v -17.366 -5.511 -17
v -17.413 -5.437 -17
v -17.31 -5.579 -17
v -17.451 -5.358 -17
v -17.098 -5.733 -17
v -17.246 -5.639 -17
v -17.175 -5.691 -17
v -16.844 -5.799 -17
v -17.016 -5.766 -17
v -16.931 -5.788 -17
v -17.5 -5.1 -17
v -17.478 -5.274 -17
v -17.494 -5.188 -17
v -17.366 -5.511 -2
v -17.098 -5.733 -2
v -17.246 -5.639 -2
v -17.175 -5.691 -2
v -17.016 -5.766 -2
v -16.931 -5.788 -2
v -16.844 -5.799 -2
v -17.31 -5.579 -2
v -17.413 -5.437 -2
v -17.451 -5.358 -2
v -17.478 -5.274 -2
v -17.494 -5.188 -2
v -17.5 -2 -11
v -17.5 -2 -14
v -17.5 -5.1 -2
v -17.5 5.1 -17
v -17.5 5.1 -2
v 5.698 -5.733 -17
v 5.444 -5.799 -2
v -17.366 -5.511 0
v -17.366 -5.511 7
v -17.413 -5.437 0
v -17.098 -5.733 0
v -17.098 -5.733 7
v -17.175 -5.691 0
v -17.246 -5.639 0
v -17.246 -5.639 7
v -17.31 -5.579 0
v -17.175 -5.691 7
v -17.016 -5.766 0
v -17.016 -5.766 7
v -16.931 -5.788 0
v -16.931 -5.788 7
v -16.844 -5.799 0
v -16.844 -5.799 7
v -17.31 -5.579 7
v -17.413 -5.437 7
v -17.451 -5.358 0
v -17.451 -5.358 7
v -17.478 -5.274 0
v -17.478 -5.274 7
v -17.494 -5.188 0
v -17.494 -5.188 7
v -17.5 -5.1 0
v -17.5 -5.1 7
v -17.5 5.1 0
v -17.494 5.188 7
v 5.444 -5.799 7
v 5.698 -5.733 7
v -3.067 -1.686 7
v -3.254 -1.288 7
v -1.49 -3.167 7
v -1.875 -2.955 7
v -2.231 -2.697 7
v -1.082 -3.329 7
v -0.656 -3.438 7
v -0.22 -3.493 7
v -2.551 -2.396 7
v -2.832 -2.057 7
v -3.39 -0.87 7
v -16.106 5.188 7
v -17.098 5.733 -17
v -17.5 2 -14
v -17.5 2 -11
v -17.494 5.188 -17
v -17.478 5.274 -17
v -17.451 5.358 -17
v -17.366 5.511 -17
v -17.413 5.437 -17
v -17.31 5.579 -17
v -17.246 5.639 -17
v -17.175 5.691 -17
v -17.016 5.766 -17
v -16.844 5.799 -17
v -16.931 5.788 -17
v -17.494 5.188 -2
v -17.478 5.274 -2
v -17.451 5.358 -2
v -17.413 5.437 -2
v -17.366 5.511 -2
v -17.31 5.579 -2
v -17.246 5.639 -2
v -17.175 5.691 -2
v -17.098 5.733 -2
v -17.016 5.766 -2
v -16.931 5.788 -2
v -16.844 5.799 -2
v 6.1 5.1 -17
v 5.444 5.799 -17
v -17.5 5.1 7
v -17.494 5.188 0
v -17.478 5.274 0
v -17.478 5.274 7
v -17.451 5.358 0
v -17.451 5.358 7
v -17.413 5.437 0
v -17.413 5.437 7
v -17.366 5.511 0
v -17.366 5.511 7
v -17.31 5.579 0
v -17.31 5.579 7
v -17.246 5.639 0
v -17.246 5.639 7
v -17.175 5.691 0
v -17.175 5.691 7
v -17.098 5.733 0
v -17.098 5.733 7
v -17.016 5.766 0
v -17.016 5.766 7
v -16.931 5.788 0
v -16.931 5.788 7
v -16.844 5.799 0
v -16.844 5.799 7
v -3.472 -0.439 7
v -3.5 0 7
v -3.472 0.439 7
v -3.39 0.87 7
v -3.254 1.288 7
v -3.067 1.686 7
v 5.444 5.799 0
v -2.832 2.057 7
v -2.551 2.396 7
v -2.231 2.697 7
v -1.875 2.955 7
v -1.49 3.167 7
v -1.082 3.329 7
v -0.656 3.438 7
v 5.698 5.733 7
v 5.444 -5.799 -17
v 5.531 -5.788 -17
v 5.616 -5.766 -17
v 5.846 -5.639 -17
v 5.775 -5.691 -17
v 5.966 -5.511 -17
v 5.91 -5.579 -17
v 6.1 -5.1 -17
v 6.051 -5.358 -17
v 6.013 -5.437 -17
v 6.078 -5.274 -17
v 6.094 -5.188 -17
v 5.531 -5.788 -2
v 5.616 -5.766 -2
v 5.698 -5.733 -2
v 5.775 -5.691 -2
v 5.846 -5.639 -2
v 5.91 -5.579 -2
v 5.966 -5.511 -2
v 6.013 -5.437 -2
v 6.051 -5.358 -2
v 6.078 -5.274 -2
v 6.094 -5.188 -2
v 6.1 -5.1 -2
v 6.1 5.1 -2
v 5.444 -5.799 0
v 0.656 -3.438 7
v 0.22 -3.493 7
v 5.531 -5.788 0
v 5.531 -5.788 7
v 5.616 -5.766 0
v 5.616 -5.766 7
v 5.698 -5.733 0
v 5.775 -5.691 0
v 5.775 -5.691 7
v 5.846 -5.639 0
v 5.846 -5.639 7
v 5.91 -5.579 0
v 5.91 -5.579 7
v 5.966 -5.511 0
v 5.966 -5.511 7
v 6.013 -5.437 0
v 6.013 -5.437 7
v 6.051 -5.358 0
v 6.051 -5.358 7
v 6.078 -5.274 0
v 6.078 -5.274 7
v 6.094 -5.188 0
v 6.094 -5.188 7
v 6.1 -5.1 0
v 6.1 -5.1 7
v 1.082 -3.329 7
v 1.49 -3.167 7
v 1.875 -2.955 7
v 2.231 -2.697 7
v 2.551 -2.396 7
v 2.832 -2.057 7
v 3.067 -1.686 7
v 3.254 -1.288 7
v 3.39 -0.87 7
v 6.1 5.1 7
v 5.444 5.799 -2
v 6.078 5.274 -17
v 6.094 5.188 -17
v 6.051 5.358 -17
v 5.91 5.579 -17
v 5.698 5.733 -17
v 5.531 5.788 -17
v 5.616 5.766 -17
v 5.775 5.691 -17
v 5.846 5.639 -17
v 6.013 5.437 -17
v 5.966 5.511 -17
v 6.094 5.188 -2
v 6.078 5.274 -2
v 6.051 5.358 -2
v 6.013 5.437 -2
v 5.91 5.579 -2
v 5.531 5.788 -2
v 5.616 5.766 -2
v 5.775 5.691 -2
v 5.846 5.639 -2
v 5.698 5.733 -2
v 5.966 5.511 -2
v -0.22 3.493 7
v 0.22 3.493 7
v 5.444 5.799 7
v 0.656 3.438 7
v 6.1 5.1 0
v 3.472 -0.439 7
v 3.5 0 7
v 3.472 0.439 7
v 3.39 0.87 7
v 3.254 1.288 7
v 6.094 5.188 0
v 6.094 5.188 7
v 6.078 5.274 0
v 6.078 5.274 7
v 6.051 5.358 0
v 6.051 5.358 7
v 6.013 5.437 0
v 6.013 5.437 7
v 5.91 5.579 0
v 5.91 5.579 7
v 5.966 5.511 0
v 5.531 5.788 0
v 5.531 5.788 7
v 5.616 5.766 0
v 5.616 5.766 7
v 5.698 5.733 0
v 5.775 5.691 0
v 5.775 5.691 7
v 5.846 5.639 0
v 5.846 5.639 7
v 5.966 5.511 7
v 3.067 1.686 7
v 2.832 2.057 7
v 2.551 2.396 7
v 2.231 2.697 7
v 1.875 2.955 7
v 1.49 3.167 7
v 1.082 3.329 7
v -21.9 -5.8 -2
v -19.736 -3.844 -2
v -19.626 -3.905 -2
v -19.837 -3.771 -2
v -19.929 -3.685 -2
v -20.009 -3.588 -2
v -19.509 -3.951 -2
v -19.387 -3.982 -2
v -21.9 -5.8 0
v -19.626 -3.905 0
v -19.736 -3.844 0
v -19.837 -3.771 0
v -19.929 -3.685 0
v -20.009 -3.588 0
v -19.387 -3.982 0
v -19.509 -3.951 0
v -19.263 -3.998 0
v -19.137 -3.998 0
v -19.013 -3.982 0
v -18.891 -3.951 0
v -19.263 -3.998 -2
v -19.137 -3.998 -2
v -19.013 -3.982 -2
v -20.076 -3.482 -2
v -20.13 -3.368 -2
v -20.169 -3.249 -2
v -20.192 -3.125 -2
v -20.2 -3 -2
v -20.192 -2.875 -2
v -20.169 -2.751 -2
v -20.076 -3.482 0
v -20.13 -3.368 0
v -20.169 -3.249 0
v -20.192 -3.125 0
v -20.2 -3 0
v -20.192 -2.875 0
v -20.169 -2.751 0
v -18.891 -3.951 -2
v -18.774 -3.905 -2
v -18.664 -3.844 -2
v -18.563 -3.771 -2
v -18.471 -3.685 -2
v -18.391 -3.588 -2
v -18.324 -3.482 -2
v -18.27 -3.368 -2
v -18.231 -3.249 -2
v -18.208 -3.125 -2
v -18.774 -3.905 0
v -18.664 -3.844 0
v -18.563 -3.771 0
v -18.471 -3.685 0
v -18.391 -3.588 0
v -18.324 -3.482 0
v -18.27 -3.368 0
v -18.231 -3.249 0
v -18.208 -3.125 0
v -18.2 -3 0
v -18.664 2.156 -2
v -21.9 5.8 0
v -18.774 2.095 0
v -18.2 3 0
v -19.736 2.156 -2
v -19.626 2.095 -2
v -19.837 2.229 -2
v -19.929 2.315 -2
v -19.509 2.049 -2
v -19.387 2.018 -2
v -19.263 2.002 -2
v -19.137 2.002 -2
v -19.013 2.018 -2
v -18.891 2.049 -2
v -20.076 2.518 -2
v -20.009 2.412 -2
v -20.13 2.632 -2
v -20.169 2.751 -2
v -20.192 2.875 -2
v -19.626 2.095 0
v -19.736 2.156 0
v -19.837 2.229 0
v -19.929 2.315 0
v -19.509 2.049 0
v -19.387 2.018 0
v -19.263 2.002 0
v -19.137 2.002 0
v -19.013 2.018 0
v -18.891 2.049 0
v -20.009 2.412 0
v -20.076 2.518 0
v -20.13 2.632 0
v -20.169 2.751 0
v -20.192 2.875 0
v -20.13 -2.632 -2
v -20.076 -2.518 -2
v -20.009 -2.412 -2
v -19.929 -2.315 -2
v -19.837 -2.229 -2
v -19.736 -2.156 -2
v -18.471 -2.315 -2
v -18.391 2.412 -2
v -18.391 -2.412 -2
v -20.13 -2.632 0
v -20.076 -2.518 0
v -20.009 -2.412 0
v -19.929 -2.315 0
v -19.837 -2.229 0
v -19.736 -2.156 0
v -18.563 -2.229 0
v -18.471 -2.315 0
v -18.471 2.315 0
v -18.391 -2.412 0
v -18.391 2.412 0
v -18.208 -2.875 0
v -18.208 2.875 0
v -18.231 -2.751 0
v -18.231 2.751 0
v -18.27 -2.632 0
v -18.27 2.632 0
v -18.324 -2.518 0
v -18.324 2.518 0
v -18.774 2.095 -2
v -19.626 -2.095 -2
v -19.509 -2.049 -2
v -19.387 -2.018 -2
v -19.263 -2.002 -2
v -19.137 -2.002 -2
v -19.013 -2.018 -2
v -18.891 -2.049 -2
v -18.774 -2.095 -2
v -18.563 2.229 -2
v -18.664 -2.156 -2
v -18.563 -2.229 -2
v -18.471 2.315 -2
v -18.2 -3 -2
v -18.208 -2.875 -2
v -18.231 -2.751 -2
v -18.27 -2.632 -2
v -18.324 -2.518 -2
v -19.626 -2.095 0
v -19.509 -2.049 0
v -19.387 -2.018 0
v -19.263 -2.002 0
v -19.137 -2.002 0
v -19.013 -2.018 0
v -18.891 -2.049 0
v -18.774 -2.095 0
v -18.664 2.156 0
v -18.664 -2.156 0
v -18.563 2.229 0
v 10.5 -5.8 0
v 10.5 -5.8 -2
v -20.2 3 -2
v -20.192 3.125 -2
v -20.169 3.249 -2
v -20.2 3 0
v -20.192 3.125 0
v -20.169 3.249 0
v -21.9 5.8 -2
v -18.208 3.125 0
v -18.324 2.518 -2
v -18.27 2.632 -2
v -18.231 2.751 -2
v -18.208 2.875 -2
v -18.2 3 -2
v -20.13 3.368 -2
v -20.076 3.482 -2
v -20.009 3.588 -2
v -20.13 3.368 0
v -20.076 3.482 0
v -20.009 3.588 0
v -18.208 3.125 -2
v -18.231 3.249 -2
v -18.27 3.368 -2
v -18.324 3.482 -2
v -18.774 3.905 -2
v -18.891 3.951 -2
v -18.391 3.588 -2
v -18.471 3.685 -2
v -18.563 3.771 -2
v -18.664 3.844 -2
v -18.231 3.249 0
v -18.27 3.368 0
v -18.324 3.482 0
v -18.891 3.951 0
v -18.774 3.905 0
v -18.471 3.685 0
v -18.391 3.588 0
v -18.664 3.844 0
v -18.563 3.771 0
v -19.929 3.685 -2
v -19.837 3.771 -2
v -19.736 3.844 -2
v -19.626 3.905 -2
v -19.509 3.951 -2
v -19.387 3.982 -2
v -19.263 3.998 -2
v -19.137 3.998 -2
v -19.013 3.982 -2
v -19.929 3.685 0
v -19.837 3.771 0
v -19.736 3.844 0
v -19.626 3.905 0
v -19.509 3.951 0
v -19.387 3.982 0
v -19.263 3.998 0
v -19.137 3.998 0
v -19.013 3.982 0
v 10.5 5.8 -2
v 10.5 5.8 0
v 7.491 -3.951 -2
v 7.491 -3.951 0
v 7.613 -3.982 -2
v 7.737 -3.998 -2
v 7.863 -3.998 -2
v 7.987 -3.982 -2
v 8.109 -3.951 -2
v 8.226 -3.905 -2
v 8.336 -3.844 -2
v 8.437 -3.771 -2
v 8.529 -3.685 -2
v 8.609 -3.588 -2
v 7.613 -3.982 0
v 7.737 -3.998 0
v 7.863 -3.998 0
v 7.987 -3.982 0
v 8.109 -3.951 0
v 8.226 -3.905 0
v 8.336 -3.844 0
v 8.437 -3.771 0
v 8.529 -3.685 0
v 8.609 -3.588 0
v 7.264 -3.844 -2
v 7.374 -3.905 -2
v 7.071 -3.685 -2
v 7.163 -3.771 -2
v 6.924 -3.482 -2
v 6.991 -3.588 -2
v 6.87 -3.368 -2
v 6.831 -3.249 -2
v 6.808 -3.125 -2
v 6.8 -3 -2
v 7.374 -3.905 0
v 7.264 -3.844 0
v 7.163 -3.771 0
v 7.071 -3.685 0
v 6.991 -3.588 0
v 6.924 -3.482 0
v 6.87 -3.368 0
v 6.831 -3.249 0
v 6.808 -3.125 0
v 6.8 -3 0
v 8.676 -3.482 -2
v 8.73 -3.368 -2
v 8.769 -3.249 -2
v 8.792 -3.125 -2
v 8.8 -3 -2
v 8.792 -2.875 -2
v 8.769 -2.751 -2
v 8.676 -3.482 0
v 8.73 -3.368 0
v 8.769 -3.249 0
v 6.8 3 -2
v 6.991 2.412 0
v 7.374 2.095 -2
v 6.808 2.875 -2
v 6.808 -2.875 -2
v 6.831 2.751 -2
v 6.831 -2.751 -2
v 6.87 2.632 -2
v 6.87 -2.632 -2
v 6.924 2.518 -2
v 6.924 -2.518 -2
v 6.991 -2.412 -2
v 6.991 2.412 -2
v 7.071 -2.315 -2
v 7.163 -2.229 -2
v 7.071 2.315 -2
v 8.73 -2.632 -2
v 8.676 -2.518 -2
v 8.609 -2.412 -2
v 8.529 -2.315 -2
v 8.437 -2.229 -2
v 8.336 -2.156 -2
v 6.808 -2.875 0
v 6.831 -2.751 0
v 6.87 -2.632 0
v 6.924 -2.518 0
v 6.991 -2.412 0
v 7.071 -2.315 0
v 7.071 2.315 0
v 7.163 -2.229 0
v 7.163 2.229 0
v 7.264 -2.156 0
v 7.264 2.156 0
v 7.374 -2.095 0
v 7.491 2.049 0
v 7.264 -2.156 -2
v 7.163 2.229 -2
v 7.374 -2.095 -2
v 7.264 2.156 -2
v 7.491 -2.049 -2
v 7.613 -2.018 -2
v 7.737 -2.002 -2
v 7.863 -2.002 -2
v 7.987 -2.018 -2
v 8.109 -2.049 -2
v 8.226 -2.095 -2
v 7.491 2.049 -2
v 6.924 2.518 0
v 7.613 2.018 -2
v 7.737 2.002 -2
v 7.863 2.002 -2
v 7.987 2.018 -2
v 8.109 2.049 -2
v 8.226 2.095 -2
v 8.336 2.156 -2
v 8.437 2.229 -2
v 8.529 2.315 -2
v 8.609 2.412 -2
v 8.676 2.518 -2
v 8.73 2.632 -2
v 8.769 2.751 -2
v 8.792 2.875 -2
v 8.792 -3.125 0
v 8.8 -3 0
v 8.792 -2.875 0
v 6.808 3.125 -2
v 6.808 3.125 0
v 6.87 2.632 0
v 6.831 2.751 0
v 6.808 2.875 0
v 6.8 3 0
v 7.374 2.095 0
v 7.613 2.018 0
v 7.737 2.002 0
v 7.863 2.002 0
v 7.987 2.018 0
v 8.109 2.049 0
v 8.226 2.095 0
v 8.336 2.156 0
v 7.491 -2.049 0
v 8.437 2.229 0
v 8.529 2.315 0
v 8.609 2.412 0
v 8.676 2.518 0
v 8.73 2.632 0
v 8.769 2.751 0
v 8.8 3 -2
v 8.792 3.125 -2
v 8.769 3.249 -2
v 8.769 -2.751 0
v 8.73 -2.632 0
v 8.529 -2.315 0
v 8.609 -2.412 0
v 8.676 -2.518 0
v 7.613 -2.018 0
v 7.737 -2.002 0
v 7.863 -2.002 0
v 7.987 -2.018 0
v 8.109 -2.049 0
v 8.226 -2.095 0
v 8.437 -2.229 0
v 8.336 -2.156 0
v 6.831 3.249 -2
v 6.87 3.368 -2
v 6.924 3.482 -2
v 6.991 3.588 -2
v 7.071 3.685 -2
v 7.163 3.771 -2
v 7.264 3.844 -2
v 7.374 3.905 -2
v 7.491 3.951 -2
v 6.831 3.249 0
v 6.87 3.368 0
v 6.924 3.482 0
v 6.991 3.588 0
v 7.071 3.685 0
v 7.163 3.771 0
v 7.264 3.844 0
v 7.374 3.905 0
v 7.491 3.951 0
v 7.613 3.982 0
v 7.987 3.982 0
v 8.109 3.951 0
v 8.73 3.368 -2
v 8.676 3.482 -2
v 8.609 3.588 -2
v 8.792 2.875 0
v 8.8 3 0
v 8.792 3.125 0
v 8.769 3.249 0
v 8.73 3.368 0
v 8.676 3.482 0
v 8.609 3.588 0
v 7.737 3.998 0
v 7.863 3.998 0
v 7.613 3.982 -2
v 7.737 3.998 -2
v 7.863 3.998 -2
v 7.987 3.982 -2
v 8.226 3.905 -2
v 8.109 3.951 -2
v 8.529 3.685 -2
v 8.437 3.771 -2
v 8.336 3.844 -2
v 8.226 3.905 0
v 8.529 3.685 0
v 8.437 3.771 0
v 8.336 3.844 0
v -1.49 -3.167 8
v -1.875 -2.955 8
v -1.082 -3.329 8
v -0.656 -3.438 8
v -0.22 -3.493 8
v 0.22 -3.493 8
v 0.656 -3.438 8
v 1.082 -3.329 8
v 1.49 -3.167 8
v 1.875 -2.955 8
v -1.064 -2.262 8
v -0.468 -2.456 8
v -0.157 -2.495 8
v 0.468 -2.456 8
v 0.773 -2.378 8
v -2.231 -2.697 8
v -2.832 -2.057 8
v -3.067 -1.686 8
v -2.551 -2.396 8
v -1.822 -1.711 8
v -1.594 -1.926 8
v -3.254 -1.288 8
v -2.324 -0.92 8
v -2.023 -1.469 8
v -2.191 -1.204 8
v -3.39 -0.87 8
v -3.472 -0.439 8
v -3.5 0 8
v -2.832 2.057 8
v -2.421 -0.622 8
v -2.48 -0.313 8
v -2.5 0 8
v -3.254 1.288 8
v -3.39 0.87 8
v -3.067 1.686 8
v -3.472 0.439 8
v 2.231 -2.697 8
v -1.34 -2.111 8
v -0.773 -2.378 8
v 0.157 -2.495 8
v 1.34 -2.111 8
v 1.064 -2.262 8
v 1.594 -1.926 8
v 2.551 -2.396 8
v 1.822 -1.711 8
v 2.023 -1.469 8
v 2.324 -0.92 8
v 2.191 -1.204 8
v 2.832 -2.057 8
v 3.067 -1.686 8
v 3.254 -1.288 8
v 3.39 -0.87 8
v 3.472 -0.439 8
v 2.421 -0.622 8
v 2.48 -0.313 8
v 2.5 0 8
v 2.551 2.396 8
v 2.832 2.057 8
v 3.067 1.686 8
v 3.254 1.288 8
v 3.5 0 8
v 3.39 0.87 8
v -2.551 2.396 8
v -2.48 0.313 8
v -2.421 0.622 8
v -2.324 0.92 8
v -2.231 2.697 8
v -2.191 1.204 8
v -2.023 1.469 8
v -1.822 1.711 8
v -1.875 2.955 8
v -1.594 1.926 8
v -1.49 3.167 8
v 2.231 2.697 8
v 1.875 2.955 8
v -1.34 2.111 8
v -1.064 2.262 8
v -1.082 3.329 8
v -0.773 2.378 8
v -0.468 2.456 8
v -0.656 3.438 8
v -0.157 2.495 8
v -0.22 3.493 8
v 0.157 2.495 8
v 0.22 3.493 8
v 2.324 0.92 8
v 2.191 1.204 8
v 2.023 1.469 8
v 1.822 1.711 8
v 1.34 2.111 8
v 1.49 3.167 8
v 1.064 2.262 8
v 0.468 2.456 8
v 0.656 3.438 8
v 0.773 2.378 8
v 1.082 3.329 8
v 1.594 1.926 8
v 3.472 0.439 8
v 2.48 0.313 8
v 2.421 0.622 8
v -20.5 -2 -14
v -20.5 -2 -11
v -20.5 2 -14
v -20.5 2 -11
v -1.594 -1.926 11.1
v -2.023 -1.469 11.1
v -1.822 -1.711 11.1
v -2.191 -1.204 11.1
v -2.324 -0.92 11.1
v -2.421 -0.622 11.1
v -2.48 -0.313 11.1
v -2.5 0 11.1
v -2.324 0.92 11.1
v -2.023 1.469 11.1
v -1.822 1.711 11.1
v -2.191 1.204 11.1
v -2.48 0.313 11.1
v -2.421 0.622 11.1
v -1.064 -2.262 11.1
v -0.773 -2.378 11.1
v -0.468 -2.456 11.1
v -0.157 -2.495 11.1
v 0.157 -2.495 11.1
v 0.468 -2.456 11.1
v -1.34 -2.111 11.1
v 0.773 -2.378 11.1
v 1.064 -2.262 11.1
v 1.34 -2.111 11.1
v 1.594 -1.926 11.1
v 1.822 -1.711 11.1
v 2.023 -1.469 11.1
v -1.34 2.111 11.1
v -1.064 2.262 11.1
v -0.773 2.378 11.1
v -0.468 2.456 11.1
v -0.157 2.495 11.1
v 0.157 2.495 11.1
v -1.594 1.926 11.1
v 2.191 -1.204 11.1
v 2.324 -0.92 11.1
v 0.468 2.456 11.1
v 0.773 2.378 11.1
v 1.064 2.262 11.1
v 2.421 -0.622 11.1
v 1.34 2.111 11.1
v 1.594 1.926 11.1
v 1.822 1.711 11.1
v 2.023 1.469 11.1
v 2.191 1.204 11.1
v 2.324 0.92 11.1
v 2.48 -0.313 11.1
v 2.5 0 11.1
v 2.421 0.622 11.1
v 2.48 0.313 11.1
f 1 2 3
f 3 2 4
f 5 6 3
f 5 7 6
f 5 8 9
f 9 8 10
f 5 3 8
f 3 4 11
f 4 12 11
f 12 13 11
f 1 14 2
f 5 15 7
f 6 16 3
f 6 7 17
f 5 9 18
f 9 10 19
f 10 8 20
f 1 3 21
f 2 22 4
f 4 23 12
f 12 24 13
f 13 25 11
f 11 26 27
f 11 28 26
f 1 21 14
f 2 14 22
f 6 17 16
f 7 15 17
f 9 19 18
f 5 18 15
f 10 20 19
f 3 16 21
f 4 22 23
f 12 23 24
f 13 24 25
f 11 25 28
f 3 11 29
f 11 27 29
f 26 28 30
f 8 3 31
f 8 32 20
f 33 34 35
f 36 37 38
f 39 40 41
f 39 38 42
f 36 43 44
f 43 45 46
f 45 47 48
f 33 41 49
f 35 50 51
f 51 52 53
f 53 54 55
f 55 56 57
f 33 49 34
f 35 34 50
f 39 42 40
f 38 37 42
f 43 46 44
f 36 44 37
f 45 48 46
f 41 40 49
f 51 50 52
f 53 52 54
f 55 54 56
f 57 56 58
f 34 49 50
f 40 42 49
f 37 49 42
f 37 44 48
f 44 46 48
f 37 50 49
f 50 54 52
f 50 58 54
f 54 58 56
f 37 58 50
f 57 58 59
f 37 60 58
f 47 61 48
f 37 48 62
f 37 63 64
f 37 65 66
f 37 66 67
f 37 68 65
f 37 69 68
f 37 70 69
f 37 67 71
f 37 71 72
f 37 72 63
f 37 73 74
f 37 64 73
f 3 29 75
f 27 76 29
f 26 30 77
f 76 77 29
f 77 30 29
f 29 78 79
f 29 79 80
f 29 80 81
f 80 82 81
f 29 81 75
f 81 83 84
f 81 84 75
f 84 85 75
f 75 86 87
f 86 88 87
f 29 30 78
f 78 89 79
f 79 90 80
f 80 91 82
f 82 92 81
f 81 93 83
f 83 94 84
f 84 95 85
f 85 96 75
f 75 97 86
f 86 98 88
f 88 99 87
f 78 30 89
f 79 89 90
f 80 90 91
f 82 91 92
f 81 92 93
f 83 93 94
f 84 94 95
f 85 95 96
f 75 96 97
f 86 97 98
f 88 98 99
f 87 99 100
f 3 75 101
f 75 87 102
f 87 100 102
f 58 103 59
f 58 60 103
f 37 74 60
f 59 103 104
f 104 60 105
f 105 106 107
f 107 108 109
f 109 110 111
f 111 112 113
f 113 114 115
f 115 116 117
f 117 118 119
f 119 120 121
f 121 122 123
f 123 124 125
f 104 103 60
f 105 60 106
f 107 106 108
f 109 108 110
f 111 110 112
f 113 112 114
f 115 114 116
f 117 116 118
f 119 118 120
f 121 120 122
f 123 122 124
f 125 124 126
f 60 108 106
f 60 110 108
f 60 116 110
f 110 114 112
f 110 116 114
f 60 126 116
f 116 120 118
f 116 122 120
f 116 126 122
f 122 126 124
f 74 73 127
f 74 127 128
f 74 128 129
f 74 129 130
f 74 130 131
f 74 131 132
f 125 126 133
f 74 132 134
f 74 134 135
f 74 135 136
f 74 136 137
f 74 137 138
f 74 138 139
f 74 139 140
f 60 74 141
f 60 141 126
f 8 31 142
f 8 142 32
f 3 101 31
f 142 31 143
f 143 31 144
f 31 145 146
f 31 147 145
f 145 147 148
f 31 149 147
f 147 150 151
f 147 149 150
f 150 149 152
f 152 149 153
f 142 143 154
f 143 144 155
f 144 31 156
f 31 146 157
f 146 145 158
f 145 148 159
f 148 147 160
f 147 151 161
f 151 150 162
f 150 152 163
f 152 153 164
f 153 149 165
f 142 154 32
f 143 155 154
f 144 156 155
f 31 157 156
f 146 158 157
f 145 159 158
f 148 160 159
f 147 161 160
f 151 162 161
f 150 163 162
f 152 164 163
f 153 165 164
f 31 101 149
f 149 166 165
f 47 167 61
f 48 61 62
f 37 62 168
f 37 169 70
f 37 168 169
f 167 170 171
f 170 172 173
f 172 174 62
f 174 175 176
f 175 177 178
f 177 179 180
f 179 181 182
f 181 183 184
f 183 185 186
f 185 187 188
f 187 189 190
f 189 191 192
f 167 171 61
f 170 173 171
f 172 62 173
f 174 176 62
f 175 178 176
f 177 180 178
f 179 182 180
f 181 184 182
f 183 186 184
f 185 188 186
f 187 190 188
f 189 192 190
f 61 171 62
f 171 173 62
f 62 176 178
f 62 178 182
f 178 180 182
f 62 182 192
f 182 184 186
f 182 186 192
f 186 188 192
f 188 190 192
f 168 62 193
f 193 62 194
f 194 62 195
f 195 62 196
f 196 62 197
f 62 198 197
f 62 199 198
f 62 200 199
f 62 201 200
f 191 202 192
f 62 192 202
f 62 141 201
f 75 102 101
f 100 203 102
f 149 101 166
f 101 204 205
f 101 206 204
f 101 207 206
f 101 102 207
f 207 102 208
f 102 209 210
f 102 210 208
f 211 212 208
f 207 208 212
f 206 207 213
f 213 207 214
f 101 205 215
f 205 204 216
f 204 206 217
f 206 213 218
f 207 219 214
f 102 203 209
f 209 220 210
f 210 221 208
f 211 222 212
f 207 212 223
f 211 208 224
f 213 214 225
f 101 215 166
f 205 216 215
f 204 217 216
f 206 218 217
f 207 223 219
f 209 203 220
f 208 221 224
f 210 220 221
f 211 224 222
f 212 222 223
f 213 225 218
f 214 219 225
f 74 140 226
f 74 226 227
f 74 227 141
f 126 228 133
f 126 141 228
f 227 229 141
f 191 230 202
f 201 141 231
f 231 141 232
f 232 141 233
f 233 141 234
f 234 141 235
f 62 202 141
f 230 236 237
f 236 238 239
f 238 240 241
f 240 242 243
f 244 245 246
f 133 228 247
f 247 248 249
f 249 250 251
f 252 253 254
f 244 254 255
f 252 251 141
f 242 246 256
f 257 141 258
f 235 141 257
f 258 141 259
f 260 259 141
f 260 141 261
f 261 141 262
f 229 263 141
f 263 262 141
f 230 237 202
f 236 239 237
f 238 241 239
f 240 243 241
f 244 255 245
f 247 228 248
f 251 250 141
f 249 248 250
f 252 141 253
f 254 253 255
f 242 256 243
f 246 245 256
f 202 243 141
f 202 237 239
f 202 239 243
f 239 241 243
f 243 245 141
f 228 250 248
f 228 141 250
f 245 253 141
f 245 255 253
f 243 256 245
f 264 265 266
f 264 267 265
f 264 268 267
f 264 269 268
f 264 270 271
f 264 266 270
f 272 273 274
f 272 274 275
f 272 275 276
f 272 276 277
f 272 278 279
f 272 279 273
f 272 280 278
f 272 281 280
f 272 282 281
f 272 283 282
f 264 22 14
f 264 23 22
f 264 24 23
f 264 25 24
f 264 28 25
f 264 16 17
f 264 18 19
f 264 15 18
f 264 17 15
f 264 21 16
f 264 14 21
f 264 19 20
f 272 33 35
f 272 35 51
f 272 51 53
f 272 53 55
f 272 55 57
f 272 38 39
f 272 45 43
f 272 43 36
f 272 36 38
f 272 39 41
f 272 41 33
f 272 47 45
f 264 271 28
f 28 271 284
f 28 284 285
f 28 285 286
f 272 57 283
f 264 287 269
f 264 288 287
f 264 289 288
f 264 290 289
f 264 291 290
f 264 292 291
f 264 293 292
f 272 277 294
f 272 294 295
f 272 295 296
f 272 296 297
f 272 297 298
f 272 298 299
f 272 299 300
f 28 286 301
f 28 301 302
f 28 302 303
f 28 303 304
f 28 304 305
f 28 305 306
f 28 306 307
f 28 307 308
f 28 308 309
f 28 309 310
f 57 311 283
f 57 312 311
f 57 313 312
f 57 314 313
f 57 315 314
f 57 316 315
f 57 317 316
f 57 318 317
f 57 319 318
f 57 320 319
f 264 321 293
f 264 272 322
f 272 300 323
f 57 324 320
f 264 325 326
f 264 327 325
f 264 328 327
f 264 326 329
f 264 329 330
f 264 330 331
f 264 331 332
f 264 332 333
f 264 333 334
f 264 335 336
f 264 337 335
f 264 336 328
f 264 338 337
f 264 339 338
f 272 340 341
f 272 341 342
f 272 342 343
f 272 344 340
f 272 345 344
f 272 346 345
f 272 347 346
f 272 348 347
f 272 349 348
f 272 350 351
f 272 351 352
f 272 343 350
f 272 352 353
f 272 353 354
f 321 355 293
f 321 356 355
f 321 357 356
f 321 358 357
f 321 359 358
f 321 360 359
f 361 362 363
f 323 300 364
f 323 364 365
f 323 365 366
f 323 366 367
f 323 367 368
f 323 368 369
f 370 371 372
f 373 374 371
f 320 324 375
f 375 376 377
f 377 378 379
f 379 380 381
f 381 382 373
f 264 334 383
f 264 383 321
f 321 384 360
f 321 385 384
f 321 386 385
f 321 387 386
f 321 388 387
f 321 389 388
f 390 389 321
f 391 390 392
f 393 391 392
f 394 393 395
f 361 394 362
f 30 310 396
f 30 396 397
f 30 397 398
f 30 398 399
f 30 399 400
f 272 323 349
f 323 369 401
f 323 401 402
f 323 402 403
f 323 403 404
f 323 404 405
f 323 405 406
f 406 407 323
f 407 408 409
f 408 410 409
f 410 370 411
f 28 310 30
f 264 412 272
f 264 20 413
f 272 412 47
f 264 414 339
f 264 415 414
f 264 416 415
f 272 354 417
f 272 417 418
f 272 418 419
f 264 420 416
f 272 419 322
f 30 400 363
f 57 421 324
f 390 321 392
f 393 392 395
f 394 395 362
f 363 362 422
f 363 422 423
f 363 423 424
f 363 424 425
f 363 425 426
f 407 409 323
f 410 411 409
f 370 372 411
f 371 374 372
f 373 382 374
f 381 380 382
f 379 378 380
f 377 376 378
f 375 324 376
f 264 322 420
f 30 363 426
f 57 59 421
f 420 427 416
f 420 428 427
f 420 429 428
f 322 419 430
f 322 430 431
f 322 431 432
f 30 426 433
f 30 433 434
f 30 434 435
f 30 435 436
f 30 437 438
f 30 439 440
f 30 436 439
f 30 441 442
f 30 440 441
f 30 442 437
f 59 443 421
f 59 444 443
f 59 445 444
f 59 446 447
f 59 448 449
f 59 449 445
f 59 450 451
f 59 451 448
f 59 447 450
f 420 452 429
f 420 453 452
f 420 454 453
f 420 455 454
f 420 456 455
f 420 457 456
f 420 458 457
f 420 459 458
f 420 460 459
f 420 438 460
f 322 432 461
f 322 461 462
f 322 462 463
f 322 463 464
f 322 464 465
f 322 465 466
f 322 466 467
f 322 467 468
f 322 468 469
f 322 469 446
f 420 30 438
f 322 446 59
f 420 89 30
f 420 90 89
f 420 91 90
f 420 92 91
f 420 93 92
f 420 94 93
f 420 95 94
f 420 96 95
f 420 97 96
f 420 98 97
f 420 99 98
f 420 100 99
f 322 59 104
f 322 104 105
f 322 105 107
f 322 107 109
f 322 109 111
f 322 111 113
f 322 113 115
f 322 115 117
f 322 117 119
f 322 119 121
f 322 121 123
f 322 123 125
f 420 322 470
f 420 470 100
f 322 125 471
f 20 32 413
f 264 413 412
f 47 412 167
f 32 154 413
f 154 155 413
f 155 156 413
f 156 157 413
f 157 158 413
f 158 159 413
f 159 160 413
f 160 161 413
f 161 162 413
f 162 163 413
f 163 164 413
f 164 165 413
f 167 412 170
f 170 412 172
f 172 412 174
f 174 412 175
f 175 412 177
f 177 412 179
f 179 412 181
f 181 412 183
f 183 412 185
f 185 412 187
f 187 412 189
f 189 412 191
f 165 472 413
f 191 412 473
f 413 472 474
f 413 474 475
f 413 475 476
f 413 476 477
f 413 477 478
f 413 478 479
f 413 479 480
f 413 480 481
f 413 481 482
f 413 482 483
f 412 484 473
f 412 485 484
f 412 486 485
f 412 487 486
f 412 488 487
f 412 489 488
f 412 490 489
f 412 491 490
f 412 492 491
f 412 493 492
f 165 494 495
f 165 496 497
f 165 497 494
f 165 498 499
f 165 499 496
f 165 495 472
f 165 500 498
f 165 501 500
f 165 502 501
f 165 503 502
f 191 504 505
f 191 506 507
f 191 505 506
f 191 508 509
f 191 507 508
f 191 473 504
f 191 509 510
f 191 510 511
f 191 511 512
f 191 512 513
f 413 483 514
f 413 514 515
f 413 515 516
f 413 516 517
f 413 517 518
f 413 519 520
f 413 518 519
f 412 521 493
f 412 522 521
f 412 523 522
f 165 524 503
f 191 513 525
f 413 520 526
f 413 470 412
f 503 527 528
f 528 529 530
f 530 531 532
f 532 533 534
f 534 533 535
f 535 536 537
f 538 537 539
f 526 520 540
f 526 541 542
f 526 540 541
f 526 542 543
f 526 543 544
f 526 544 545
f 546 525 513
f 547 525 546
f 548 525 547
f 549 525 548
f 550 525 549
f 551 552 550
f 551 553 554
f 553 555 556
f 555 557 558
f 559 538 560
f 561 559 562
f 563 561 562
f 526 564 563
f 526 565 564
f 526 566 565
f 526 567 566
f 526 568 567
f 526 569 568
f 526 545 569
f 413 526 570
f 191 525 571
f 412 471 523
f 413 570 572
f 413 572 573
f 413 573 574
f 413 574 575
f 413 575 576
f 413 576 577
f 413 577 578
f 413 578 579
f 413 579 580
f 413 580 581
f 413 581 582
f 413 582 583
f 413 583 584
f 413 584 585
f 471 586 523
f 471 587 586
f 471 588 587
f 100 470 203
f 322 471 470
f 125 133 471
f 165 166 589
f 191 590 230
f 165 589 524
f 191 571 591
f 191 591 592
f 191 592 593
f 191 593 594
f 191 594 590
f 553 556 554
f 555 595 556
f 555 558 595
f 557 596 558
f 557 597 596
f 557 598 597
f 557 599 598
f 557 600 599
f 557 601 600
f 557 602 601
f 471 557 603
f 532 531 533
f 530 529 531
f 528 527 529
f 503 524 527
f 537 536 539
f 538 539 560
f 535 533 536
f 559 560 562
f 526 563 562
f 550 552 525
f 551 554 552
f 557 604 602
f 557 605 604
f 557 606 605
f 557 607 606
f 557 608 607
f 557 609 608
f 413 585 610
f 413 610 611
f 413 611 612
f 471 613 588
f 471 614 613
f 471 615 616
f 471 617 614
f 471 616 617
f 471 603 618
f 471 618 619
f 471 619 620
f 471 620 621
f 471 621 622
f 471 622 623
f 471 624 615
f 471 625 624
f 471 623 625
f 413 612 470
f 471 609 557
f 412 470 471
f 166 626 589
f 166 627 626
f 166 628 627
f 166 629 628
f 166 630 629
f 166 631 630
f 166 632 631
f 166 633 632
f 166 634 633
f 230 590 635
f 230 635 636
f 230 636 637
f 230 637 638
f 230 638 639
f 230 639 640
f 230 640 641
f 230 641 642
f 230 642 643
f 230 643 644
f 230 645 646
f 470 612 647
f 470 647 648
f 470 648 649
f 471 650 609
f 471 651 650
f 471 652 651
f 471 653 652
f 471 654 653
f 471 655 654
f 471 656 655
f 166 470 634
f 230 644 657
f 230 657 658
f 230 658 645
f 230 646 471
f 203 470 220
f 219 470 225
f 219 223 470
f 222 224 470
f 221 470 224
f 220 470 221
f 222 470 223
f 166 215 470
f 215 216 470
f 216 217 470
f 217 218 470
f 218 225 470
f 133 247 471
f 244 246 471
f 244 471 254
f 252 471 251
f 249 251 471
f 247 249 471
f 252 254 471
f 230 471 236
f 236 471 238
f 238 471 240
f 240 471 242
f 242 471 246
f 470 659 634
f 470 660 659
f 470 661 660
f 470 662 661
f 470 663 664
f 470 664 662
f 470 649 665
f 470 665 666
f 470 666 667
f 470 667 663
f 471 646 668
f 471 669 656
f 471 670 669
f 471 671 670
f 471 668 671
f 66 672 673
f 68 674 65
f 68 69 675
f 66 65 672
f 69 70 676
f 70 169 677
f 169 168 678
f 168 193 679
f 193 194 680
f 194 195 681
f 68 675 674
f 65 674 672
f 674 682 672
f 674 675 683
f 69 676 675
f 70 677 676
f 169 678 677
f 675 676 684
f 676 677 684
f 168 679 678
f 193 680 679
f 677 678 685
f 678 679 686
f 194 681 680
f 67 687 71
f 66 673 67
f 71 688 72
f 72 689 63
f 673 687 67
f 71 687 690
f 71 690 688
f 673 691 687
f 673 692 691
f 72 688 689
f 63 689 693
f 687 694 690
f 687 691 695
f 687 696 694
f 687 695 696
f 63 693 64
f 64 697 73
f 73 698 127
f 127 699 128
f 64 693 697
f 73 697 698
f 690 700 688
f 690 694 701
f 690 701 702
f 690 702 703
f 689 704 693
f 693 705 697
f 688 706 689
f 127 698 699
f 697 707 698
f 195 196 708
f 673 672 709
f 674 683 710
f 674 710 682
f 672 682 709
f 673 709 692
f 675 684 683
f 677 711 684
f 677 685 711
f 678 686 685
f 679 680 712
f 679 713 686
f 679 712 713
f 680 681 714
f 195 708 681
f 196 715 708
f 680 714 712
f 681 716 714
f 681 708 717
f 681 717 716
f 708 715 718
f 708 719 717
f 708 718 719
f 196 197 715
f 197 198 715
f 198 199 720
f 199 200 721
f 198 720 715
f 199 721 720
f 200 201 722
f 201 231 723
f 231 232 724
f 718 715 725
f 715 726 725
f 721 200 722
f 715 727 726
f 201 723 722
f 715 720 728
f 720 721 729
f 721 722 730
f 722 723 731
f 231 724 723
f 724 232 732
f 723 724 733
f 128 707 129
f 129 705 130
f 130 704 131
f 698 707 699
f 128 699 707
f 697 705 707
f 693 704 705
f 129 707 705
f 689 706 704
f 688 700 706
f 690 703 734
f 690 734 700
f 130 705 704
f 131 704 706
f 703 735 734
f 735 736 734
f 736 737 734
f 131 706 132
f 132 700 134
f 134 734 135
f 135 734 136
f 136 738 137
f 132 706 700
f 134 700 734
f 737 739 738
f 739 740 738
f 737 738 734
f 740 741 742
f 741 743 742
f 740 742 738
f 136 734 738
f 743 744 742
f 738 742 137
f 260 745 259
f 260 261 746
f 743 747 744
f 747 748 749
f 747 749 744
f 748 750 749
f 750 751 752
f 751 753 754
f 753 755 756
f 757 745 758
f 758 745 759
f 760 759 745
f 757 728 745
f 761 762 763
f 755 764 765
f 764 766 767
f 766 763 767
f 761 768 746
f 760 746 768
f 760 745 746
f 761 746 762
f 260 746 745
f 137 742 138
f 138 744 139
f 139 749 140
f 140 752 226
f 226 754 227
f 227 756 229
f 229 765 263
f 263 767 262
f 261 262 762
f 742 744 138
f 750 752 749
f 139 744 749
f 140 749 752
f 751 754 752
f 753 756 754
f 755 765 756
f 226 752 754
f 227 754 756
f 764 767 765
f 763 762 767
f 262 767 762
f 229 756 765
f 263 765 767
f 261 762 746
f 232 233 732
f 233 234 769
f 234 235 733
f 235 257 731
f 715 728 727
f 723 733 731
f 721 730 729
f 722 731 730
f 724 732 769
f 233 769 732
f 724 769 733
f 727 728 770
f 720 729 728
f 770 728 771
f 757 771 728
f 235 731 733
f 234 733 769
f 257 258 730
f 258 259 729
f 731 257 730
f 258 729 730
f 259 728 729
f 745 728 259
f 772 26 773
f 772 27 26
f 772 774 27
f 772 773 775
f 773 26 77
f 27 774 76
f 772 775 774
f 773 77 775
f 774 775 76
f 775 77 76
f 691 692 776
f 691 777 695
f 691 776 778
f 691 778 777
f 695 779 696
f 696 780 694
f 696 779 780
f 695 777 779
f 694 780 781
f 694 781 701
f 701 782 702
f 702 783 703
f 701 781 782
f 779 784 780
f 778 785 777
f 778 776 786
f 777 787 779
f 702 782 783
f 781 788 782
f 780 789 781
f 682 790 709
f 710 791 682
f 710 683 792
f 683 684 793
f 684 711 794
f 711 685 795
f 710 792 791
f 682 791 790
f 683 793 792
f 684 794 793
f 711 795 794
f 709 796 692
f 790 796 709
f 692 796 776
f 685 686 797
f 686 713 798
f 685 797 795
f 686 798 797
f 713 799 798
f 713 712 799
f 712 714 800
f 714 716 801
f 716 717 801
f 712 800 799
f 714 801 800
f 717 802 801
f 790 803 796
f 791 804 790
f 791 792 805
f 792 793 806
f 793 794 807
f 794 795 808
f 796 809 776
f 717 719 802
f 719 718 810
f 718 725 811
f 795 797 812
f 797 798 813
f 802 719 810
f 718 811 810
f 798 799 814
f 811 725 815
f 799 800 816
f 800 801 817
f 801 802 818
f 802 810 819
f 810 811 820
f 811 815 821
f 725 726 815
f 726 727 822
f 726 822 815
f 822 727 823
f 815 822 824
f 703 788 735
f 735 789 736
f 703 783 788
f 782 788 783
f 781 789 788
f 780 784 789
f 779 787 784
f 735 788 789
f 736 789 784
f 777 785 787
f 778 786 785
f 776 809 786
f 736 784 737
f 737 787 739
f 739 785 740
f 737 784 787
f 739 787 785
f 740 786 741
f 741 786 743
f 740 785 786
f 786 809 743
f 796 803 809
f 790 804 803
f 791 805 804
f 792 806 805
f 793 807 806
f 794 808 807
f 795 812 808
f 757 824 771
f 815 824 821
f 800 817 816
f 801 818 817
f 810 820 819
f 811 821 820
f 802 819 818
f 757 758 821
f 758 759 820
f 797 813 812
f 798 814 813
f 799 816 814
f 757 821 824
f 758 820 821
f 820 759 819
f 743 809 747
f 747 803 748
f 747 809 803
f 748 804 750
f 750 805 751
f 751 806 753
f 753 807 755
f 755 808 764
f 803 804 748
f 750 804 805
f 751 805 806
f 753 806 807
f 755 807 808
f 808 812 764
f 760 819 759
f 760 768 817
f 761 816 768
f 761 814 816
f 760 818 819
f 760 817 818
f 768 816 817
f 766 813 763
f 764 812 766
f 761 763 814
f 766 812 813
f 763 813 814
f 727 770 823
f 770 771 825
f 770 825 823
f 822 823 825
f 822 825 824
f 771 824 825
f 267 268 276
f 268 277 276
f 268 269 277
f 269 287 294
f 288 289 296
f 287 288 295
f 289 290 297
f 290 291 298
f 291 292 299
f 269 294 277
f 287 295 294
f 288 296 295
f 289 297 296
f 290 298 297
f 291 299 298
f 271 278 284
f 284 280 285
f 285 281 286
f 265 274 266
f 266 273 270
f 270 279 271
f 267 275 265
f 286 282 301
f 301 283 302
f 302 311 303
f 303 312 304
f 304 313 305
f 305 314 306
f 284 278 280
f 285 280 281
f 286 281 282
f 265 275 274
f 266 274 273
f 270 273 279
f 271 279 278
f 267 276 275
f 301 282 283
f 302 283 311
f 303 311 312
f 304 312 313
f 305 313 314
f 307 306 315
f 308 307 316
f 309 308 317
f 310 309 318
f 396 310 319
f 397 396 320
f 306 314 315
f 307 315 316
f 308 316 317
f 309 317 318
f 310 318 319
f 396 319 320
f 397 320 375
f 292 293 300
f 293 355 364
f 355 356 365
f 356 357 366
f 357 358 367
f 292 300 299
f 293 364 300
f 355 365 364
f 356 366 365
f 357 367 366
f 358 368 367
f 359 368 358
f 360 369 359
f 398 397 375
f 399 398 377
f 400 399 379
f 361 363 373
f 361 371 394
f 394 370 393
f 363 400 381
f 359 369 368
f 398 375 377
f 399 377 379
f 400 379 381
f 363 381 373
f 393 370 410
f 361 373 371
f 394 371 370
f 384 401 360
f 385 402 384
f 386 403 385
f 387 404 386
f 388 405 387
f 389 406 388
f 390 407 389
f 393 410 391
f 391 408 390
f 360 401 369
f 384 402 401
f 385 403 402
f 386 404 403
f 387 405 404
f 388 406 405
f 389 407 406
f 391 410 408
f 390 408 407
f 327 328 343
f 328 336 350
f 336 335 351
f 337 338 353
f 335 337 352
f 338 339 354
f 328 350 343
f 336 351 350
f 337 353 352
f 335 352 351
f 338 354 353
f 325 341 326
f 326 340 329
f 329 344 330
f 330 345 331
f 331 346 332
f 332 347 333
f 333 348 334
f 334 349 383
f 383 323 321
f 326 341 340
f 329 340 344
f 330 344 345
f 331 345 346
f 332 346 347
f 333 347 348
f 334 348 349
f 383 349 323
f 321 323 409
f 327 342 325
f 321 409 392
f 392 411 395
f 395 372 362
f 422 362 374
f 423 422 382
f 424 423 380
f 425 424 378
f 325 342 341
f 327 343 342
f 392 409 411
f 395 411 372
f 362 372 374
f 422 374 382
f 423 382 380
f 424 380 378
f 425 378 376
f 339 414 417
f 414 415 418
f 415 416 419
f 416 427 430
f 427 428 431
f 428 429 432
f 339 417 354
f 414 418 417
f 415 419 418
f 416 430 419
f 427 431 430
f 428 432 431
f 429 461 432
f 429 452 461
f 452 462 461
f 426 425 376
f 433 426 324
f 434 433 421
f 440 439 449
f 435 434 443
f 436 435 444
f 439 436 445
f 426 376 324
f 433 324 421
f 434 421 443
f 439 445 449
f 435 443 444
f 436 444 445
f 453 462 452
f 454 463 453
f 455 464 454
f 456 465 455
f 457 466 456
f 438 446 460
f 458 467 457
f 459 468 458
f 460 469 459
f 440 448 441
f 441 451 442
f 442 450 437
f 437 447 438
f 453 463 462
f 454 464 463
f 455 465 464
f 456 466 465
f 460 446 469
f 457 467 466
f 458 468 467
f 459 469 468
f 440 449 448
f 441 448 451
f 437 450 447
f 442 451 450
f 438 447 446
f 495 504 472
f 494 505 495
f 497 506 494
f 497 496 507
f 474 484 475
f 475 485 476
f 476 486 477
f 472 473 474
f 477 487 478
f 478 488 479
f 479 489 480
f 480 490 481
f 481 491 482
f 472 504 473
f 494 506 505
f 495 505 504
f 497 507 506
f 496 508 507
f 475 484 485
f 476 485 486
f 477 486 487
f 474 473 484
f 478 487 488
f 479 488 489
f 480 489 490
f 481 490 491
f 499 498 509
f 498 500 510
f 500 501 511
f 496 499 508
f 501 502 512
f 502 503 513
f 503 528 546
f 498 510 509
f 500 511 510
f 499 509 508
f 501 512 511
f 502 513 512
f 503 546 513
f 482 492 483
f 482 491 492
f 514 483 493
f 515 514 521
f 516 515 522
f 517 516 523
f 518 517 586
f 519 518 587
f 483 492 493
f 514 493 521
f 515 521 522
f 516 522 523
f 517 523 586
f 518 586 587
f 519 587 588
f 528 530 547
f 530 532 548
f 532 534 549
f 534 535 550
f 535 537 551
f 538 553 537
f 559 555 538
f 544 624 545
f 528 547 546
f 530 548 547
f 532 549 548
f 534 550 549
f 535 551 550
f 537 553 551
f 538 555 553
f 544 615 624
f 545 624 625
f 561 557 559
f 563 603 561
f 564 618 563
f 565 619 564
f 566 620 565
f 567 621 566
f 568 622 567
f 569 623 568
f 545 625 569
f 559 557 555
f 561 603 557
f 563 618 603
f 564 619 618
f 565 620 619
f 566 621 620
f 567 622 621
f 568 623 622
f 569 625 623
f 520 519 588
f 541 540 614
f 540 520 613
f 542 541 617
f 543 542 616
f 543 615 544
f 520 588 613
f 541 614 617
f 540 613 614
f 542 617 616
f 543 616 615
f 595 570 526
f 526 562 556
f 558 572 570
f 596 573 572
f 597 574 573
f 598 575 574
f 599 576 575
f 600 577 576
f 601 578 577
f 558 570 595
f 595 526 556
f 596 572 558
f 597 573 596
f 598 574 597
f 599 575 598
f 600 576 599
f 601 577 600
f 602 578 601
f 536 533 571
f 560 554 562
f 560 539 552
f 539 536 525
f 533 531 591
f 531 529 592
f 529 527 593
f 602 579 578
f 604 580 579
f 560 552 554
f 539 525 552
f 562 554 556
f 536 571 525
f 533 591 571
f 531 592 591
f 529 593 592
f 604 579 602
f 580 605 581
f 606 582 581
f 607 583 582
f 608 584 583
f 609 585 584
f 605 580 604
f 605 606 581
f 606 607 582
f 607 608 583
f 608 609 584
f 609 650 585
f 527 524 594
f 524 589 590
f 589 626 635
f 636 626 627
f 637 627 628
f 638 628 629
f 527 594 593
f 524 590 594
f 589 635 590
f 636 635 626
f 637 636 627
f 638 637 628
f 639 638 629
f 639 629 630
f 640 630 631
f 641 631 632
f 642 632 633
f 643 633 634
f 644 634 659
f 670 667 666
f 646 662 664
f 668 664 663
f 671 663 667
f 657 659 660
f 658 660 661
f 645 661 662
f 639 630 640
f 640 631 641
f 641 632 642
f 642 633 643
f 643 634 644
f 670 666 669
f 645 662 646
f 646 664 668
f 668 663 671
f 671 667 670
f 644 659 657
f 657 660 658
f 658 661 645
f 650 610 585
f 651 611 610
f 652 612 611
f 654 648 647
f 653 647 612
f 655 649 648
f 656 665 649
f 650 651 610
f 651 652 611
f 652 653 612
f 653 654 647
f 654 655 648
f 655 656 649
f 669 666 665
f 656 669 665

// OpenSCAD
$fn = 50;

difference() {
	union() {
		translate(v = [-5.700000000000001, 0, -17]) {
			hull() {
				translate(v = [-11.100000000000001, 5.1, 0]) {
					cylinder(h = 24, r = 0.7);
				}
				translate(v = [11.100000000000001, 5.1, 0]) {
					cylinder(h = 24, r = 0.7);
				}
				translate(v = [-11.100000000000001, -5.1, 0]) {
					cylinder(h = 24, r = 0.7);
				}
				translate(v = [11.100000000000001, -5.1, 0]) {
					cylinder(h = 24, r = 0.7);
				}
			}
		}
		translate(v = [-21.9, -5.8, -2]) {
			cube(size = [32.4, 11.6, 2]);
		}
		translate(v = [0, 0, 7.0]) {
			cylinder(h = 1, r = 3.5);
		}
		translate(v = [-20.5, -2.0, -14]) {
			cube(size = [4, 4, 3]);
		}
		translate(v = [0, 0, 8.0]) {
			cylinder(h = 3.0999999999999996, r = 2.5);
		}
	}
	union() {
		translate(v = [-19.2, -3, -4]) {
			cylinder(h = 5, r = 1.0);
		}
		translate(v = [-19.2, 3, -4]) {
			cylinder(h = 5, r = 1.0);
		}
		translate(v = [7.8, -3, -4]) {
			cylinder(h = 5, r = 1.0);
		}
		translate(v = [7.8, 3, -4]) {
			cylinder(h = 5, r = 1.0);
		}
	}
}
